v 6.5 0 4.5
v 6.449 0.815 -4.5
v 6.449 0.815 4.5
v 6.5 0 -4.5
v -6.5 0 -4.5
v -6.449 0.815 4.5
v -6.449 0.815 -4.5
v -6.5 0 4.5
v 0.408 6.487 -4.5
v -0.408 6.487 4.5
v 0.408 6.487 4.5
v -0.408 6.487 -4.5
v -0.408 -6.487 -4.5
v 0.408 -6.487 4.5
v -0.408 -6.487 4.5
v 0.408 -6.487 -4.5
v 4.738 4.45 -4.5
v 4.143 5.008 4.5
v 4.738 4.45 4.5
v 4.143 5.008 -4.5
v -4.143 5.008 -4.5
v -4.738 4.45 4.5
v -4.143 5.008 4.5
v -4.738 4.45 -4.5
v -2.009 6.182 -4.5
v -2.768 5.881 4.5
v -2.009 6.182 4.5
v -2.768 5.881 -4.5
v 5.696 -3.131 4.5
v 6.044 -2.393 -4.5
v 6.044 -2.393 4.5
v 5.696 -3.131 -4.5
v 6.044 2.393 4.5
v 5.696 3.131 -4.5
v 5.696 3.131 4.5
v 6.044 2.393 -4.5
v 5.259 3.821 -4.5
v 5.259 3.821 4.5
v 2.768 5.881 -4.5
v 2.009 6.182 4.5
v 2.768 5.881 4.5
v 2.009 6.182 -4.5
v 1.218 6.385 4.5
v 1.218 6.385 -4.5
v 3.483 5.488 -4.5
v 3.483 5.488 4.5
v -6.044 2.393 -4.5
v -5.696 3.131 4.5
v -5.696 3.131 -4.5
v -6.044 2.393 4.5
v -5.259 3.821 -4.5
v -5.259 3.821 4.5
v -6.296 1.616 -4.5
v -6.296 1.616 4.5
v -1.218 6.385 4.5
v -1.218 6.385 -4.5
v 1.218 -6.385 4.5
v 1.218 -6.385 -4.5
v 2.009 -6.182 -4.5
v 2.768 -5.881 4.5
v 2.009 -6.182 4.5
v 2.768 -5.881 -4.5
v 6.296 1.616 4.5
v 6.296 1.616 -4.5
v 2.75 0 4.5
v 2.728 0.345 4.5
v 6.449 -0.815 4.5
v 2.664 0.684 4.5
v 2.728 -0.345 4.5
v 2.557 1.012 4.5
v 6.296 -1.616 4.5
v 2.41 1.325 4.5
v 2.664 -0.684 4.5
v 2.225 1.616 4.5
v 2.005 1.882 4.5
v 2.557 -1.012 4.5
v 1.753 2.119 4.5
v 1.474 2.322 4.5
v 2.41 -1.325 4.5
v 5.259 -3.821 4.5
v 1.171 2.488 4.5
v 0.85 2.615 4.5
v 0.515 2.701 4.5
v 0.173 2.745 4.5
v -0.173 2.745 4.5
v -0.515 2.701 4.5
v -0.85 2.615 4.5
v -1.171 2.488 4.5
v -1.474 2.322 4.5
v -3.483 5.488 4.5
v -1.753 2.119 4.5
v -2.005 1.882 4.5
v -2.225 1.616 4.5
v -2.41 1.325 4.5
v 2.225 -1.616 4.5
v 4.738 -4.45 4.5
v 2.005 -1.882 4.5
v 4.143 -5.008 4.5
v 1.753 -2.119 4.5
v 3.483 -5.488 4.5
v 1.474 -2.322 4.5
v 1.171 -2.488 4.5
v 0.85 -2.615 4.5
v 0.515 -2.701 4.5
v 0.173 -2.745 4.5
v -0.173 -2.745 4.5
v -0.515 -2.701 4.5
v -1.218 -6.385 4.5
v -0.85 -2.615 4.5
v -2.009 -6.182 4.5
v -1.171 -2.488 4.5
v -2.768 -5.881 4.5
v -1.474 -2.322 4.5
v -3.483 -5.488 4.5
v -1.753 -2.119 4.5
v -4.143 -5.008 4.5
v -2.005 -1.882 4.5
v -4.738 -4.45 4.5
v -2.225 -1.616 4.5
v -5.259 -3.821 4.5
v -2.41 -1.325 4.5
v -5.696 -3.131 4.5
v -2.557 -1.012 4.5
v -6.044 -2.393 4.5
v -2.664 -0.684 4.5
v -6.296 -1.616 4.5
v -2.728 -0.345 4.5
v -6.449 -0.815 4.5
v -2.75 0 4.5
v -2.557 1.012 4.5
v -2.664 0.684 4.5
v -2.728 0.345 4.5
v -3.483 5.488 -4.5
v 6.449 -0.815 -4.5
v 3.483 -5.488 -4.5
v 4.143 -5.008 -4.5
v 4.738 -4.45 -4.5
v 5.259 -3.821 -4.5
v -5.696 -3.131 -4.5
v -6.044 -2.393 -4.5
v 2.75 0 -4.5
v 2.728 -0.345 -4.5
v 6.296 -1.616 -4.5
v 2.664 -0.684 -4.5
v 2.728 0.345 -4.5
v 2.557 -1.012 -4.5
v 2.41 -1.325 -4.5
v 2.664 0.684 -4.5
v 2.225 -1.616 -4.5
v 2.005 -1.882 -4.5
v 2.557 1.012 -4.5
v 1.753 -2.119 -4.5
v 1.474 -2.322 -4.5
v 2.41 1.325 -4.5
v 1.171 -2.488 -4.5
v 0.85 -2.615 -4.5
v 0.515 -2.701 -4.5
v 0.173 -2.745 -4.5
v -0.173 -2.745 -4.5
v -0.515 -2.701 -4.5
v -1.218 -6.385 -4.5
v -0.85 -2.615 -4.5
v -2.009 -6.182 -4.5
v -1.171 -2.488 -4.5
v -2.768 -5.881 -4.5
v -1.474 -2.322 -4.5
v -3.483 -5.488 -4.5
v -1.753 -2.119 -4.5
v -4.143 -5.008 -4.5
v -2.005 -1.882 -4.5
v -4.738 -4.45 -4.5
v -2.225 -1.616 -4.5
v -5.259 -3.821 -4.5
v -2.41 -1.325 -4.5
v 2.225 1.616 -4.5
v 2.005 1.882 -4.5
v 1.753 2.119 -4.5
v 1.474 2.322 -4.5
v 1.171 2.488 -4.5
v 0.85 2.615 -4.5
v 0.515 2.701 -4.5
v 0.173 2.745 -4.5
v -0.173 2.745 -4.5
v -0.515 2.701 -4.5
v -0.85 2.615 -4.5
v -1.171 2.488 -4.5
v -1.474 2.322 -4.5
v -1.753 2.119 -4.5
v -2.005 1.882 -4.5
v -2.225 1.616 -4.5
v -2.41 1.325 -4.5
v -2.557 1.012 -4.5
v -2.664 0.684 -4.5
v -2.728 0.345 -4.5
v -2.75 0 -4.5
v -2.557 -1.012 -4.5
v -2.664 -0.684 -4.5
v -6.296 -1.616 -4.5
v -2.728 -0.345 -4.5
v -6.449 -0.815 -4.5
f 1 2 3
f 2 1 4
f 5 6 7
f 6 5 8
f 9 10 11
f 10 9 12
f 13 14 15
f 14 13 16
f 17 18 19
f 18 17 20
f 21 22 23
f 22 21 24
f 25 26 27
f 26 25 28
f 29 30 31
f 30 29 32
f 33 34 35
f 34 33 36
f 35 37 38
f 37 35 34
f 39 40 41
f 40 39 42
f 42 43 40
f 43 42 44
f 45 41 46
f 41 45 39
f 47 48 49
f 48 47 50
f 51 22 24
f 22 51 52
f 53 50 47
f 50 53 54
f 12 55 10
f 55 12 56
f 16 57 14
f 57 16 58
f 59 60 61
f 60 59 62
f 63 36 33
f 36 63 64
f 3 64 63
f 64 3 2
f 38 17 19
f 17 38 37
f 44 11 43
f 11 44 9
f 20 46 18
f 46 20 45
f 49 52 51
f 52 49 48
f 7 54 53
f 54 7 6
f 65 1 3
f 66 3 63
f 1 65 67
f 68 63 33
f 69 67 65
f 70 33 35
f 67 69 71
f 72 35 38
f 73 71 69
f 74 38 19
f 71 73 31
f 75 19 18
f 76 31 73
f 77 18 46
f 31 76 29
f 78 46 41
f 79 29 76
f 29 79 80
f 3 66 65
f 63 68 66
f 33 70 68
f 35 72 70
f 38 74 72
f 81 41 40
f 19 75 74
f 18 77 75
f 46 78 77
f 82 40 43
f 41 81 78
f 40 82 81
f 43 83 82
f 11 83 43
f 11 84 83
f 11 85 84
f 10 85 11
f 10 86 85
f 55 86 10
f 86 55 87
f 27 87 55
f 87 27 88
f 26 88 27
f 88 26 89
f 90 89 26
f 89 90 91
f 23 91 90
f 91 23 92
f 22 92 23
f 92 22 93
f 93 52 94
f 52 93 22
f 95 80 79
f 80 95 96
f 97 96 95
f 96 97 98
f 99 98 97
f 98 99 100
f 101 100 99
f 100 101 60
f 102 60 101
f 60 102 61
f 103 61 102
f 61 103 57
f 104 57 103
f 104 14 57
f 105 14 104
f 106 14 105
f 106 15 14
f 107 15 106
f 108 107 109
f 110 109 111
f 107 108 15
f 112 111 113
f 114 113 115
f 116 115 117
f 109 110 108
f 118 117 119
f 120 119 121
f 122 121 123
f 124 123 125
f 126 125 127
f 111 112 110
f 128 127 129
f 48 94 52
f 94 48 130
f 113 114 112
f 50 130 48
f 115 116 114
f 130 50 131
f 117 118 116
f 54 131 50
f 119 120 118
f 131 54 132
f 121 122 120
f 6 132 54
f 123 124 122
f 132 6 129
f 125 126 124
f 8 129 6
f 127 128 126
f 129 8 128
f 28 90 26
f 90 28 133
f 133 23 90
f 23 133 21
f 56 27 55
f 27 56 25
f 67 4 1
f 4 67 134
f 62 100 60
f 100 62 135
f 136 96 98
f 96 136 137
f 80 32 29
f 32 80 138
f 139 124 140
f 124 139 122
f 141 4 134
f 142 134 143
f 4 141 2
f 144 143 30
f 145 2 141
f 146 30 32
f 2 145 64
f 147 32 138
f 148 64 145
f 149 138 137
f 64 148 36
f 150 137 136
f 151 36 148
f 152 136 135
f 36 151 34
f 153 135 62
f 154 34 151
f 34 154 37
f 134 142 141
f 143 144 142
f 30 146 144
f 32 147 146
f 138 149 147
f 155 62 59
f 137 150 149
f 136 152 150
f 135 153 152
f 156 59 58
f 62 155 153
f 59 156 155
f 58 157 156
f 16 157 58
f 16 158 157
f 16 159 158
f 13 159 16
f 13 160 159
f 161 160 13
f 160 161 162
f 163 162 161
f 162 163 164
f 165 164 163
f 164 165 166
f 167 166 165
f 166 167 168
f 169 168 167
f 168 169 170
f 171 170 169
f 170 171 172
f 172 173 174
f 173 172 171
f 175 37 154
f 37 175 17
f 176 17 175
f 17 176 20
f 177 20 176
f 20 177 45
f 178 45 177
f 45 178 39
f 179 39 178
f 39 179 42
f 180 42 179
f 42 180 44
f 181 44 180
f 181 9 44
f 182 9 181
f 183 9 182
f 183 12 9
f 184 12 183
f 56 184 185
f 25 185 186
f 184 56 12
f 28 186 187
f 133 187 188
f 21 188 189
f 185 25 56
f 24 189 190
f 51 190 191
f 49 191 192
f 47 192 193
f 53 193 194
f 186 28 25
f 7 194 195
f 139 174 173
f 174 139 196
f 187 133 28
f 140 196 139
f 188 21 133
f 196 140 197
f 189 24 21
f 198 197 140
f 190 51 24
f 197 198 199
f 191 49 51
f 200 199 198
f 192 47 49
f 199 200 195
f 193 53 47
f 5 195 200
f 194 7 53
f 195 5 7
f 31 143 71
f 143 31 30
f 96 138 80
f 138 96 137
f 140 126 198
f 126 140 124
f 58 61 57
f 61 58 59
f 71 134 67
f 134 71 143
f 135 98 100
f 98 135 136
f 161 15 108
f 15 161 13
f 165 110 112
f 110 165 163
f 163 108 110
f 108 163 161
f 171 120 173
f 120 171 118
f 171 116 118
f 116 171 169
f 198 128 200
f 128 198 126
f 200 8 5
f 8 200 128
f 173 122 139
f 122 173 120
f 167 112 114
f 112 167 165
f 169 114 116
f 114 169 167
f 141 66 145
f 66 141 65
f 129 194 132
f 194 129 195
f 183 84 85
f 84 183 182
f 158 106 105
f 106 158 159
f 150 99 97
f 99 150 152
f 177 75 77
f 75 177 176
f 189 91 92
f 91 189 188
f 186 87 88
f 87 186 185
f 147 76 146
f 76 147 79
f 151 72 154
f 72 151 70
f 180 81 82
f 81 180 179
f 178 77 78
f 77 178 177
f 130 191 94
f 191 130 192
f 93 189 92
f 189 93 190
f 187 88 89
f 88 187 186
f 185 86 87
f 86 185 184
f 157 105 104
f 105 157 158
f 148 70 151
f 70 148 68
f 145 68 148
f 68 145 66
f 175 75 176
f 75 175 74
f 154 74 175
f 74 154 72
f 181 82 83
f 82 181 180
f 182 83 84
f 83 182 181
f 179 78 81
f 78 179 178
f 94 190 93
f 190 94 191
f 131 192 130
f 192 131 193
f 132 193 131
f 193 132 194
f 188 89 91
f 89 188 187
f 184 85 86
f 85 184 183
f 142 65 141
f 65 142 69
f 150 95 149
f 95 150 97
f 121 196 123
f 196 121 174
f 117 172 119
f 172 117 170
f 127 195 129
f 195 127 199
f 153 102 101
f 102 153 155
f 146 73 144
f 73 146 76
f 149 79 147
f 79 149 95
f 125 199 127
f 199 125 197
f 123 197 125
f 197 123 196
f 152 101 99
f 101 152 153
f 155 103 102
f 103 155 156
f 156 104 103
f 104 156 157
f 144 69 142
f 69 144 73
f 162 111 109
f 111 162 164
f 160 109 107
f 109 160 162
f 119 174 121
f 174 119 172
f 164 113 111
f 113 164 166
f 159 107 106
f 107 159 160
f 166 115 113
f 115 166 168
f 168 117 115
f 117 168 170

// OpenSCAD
$fn = 50;


difference() {
	union() {
		translate(v = [0, 0, -4.5000000000]) {
			cylinder(h = 9, r = 6.5000000000);
		}
	}
	union() {
		translate(v = [0, 0, -100.0000000000]) {
			cylinder(h = 200, r = 2.7500000000);
		}
	}
}
